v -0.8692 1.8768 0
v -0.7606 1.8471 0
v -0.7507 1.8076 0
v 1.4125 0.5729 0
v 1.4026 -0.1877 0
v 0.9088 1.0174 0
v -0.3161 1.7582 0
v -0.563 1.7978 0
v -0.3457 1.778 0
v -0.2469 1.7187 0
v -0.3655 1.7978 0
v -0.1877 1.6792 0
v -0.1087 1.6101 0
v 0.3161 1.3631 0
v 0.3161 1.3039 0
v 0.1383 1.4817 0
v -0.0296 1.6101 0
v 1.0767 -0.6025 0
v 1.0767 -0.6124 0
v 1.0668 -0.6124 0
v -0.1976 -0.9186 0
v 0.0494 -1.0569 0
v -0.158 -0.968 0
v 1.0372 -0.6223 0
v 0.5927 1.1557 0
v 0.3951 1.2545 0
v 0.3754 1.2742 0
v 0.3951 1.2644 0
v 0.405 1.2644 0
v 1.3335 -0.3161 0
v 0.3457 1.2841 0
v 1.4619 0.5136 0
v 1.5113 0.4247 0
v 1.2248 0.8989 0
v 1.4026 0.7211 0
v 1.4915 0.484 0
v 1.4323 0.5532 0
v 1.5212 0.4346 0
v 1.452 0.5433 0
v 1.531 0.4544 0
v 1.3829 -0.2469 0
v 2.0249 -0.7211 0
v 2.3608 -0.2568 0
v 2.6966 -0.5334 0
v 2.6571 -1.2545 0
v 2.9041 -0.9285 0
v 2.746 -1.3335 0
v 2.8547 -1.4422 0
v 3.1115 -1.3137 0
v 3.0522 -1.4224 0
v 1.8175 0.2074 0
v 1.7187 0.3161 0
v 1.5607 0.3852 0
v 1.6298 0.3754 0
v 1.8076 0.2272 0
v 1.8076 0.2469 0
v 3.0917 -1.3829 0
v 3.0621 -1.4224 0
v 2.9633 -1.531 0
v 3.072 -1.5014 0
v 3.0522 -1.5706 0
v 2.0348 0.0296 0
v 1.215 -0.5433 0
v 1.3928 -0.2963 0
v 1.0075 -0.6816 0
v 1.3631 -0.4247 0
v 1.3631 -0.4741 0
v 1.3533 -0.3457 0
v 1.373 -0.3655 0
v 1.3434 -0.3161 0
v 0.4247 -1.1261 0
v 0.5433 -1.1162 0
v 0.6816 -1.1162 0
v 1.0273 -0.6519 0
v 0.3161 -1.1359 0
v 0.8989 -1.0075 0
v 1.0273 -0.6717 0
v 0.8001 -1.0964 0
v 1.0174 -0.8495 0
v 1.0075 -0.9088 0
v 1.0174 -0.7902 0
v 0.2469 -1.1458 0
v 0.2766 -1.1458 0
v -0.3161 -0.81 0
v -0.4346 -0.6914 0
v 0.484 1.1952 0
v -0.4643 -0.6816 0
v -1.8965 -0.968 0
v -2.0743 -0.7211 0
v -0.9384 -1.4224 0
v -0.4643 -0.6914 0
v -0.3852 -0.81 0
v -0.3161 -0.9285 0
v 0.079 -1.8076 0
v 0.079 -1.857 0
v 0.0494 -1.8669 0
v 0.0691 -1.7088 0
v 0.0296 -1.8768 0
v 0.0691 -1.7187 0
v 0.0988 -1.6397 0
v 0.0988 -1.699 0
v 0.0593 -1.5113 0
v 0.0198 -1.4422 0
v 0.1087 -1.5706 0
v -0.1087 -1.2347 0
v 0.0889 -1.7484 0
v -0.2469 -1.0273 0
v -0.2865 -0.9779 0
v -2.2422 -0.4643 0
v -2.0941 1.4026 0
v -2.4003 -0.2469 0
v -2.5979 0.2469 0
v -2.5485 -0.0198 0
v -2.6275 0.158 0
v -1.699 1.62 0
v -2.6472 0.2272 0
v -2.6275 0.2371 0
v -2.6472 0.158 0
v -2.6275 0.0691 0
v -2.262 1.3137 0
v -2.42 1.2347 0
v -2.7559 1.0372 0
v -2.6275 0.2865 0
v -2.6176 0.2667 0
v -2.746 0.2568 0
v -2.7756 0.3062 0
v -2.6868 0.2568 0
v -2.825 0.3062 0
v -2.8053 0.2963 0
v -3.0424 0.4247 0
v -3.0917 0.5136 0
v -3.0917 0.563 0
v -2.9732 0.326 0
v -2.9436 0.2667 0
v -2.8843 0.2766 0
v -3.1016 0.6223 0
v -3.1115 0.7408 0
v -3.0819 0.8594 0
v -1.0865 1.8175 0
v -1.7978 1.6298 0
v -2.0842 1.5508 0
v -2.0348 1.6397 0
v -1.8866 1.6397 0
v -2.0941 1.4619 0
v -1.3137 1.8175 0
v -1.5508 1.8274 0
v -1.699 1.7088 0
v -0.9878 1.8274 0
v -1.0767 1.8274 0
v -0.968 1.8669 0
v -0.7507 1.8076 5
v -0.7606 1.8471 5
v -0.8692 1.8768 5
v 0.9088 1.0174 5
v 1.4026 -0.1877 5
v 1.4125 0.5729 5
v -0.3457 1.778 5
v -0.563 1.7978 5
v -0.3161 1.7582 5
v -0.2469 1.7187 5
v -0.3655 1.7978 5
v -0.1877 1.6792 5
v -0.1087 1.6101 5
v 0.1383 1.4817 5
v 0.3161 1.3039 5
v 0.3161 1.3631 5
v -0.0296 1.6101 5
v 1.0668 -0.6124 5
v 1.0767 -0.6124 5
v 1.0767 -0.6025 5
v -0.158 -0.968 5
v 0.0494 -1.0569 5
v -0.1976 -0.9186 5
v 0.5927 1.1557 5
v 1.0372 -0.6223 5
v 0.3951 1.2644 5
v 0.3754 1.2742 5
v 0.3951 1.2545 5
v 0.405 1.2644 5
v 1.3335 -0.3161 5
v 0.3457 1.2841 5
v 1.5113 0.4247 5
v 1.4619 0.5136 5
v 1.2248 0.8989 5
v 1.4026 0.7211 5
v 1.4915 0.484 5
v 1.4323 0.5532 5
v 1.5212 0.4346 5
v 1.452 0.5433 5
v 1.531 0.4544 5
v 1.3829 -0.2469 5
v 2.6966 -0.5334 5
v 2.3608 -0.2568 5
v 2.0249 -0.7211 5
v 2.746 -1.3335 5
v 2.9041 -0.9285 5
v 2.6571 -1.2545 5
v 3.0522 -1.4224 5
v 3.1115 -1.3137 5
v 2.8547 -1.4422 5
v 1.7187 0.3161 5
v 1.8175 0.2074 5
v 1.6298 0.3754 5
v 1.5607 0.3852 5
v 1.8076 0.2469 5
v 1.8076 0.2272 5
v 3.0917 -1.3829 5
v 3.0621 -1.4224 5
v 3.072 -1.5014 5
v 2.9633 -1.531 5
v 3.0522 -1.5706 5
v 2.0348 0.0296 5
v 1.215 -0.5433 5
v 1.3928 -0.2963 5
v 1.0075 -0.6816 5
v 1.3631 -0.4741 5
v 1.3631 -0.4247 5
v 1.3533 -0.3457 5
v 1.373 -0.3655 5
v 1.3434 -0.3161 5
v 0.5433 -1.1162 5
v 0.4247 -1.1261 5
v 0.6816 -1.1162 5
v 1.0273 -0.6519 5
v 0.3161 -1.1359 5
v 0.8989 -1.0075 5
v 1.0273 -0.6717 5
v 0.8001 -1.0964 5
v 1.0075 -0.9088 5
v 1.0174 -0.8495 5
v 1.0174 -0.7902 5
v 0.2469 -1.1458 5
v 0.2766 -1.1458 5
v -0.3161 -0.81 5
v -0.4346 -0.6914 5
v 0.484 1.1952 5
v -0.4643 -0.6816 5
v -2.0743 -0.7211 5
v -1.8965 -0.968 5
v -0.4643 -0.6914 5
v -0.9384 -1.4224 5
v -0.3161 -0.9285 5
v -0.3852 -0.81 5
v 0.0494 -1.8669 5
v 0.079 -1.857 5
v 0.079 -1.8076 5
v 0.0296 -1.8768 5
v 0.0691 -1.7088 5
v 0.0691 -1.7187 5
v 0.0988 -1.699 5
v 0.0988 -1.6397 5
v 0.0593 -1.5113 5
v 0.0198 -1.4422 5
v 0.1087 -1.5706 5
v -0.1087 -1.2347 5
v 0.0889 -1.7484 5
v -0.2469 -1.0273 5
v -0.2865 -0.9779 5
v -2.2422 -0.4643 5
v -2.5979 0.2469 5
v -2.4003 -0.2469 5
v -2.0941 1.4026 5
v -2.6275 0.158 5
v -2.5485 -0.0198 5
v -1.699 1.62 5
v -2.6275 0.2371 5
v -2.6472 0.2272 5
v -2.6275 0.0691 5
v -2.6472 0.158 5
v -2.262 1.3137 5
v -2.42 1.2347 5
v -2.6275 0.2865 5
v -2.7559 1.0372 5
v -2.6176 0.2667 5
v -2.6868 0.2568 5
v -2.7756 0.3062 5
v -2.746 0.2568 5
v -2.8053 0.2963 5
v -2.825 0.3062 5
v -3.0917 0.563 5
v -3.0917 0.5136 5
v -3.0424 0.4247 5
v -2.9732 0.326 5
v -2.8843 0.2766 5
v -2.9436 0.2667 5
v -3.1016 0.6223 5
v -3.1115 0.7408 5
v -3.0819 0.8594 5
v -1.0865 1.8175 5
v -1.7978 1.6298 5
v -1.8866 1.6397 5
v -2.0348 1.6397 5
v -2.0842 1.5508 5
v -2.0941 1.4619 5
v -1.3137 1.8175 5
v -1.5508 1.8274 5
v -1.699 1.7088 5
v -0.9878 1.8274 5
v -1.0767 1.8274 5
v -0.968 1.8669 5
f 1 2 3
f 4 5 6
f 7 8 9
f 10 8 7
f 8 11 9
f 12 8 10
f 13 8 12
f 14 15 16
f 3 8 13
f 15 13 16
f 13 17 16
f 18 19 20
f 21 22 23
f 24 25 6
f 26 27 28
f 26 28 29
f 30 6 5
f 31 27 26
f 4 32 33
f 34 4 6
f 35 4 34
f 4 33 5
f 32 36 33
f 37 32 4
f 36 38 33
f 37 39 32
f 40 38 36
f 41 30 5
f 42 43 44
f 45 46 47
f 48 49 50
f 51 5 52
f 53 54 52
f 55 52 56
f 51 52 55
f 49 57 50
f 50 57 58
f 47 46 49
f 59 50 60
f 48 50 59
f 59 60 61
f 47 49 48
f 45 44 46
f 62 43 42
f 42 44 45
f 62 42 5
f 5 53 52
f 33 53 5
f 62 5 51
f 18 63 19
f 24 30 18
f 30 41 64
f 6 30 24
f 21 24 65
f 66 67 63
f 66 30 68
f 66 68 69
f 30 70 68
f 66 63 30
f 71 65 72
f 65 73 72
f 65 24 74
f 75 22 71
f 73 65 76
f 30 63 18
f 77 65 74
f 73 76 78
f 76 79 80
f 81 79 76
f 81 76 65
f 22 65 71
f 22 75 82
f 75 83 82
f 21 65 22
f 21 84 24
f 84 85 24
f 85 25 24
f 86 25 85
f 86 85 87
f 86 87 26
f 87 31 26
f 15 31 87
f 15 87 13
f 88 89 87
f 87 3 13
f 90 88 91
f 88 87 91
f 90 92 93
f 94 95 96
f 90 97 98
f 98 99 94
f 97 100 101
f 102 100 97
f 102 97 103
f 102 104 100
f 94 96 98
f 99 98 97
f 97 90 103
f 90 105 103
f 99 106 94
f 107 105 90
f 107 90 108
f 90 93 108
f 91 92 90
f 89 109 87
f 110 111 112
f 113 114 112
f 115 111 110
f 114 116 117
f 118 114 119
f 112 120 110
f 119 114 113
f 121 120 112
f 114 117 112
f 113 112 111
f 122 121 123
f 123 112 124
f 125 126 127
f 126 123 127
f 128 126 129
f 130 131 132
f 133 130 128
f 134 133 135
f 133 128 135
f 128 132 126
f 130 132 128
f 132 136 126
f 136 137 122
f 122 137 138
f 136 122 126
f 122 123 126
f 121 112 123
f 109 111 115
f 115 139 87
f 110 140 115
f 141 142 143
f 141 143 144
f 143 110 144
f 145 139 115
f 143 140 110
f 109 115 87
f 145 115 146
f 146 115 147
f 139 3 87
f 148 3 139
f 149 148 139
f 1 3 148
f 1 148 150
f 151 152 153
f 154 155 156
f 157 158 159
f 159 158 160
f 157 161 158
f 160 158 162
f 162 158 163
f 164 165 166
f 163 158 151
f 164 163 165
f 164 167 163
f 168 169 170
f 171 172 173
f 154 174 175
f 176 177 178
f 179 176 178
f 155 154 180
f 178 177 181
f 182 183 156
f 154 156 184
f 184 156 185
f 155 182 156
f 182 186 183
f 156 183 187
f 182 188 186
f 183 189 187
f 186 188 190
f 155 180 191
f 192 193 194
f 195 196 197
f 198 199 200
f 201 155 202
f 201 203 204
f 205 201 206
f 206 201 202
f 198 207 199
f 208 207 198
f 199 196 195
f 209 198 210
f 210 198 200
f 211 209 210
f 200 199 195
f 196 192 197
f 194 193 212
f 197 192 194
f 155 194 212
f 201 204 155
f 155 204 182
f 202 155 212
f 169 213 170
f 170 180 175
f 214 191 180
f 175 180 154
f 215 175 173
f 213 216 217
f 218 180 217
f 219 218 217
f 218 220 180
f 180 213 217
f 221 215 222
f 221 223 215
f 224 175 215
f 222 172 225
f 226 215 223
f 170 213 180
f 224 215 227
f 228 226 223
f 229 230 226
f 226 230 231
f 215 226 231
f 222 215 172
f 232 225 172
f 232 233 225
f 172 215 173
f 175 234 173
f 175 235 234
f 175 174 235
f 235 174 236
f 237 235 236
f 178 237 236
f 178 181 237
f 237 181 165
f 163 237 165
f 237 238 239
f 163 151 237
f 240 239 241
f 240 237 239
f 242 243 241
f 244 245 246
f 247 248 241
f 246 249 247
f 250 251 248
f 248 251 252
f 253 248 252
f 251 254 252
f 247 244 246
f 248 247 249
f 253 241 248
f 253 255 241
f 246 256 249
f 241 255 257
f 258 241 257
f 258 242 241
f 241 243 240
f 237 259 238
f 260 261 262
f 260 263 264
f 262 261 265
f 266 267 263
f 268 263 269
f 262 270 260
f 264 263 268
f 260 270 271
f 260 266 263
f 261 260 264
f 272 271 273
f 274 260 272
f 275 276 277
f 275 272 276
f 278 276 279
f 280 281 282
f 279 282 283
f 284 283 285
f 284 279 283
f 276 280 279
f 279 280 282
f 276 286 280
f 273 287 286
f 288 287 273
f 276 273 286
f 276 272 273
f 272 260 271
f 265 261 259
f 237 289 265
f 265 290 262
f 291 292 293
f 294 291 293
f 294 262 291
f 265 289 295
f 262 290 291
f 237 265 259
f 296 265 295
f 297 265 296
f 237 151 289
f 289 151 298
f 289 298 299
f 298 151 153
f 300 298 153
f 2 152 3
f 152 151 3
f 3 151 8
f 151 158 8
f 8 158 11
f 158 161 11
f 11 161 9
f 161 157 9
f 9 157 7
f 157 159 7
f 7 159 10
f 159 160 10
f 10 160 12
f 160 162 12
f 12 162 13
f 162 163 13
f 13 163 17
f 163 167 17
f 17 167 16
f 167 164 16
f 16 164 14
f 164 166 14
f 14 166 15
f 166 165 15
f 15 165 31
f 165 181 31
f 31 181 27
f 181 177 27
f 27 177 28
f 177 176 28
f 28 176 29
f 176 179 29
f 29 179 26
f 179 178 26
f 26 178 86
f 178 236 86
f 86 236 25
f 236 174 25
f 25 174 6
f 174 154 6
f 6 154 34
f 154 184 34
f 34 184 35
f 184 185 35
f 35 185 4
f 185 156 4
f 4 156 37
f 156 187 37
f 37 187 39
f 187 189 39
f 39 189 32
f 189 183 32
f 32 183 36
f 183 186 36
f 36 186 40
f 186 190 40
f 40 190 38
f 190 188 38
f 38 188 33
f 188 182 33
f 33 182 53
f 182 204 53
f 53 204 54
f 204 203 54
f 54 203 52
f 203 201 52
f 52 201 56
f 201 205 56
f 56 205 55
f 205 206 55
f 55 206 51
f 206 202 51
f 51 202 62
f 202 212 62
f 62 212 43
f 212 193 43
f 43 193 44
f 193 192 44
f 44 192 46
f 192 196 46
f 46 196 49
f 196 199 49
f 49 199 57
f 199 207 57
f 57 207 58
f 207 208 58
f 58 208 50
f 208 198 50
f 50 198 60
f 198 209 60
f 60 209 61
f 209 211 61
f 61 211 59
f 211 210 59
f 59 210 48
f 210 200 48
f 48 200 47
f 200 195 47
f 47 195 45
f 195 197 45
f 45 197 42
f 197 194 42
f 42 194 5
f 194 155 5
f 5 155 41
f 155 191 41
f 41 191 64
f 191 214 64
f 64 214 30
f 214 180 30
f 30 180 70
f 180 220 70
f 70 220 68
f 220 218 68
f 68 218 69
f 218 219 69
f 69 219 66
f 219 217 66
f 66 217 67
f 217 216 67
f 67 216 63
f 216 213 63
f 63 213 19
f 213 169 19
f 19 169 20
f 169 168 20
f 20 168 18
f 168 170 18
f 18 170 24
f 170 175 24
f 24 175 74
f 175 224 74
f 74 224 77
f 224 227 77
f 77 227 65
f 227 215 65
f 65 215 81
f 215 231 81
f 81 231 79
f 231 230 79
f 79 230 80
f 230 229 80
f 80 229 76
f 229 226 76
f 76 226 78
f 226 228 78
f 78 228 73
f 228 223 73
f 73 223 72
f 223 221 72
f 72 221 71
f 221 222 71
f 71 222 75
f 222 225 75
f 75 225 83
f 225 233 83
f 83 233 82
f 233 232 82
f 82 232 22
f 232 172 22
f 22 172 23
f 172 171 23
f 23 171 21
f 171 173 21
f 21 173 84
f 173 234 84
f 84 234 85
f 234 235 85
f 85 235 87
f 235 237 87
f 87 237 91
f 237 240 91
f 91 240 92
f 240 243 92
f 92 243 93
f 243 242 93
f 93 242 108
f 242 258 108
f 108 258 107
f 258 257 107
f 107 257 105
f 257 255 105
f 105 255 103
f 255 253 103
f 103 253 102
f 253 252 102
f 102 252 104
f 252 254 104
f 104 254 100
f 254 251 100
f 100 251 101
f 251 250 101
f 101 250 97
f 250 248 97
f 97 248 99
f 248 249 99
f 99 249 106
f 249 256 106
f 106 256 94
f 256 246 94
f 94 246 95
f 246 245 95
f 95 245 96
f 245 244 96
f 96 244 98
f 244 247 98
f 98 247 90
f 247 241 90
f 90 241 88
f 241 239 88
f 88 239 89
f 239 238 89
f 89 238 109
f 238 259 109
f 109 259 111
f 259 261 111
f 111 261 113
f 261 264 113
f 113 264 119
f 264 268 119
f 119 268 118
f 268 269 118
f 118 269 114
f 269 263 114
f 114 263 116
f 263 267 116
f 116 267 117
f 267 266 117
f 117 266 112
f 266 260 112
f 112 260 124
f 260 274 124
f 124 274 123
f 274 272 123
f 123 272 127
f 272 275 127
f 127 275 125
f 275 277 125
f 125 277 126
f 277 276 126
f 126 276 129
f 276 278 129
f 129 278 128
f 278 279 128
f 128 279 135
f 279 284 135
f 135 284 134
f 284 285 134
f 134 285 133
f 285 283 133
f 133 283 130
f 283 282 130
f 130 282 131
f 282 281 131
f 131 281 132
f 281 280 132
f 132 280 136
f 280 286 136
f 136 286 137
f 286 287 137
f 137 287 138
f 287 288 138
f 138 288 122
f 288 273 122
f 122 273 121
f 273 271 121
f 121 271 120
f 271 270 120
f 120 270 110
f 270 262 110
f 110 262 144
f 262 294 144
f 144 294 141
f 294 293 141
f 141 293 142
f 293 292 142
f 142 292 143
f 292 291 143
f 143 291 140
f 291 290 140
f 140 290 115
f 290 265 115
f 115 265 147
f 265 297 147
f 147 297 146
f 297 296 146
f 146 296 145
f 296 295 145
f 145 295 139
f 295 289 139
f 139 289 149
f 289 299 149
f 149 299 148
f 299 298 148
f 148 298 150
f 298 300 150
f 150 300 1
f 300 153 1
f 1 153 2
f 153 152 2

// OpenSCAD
// Module names are of the form poly_<inkscape-path-id>().  As a result,
// you can associate a polygon in this OpenSCAD program with the corresponding
// SVG element in the Inkscape document by looking for the XML element with
// the attribute id="inkscape-path-id".

// fudge value is used to ensure that subtracted solids are a tad taller
// in the z dimension than the polygon being subtracted from.  This helps
// keep the resulting .stl file manifold.
fudge = 0.1;

module poly_path4187(h)
{
  scale([25.4/90, -25.4/90, 1]) union()
  {
    linear_extrude(height=h)
      polygon([[4.340000,-3.185000],[4.970000,-2.555000],[5.005000,-2.030000],[5.075000,-1.960000],[5.145000,-1.925000],[5.180000,-1.820000],[5.285000,-1.715000],[5.425000,-1.610000],[5.390000,-1.540000],[5.355000,-1.505000],[5.530000,-1.365000],[5.775000,-1.330000],[6.090000,-1.120000],[6.405000,-0.875000],[6.405000,-0.805000],[6.440000,-0.735000],[6.825000,-0.420000],[7.210000,-0.105000],[8.365000,0.910000],[9.555000,1.890000],[10.290000,3.290000],[11.025000,4.655000],[10.955000,4.900000],[10.850000,5.040000],[10.815000,5.040000],[10.885000,5.320000],[10.815000,5.565000],[10.500000,5.425000],[10.115000,5.110000],[9.730000,4.725000],[9.415000,4.445000],[7.175000,2.555000],[4.970000,0.665000],[4.900000,0.875000],[4.935000,1.050000],[4.725000,1.120000],[4.760000,1.120000],[4.795000,1.225000],[4.865000,1.295000],[4.830000,1.505000],[4.830000,1.680000],[4.305000,1.925000],[3.815000,2.170000],[3.780000,2.170000],[3.815000,2.135000],[3.745000,2.170000],[3.675000,2.205000],[3.640000,2.310000],[3.640000,2.380000],[3.570000,2.415000],[3.605000,2.800000],[3.605000,3.010000],[3.570000,3.220000],[3.185000,3.570000],[2.835000,3.885000],[2.415000,3.955000],[1.925000,3.955000],[1.505000,3.990000],[1.120000,4.025000],[0.980000,4.060000],[0.875000,4.060000],[0.175000,3.745000],[-0.560000,3.430000],[-0.700000,3.255000],[-1.120000,2.870000],[-1.540000,2.450000],[-1.645000,2.415000],[-1.645000,2.450000],[-1.365000,2.870000],[-1.120000,3.290000],[-1.015000,3.465000],[-0.875000,3.640000],[-0.385000,4.375000],[0.070000,5.110000],[0.210000,5.355000],[0.385000,5.565000],[0.350000,5.810000],[0.350000,6.020000],[0.245000,6.055000],[0.245000,6.090000],[0.315000,6.195000],[0.280000,6.405000],[0.280000,6.580000],[0.175000,6.615000],[0.105000,6.650000],[-3.325000,5.040000],[-6.720000,3.430000],[-7.350000,2.555000],[-7.945000,1.645000],[-8.505000,0.875000],[-9.030000,0.070000],[-9.310000,-0.245000],[-9.380000,-0.560000],[-9.310000,-0.560000],[-9.380000,-0.805000],[-9.310000,-0.840000],[-9.205000,-0.875000],[-9.275000,-0.945000],[-9.310000,-1.015000],[-9.520000,-0.910000],[-9.730000,-0.910000],[-9.835000,-1.085000],[-9.940000,-1.050000],[-10.010000,-1.085000],[-10.220000,-0.980000],[-10.430000,-0.945000],[-10.535000,-1.155000],[-10.780000,-1.505000],[-10.955000,-1.820000],[-10.955000,-1.995000],[-10.990000,-2.205000],[-11.025000,-2.625000],[-10.920000,-3.045000],[-9.765000,-3.675000],[-8.575000,-4.375000],[-8.015000,-4.655000],[-7.420000,-4.970000],[-7.420000,-5.040000],[-7.420000,-5.180000],[-7.385000,-5.495000],[-7.210000,-5.810000],[-6.685000,-5.810000],[-6.370000,-5.775000],[-6.020000,-5.740000],[-6.020000,-6.055000],[-5.495000,-6.475000],[-4.655000,-6.440000],[-3.850000,-6.440000],[-3.815000,-6.475000],[-3.500000,-6.475000],[-3.430000,-6.615000],[-3.080000,-6.650000],[-2.695000,-6.545000],[-2.660000,-6.405000],[-1.995000,-6.370000],[-1.295000,-6.370000],[-1.225000,-6.300000],[-1.120000,-6.230000],[-0.875000,-6.090000],[-0.665000,-5.950000],[-0.385000,-5.705000],[-0.105000,-5.705000],[0.490000,-5.250000],[1.120000,-4.830000],[1.120000,-4.620000],[1.225000,-4.550000],[1.330000,-4.515000],[1.400000,-4.480000],[1.435000,-4.480000],[1.400000,-4.445000],[1.715000,-4.235000],[2.100000,-4.095000],[3.220000,-3.605000],[4.340000,-3.185000]]);
  }
}

poly_path4187(5);
